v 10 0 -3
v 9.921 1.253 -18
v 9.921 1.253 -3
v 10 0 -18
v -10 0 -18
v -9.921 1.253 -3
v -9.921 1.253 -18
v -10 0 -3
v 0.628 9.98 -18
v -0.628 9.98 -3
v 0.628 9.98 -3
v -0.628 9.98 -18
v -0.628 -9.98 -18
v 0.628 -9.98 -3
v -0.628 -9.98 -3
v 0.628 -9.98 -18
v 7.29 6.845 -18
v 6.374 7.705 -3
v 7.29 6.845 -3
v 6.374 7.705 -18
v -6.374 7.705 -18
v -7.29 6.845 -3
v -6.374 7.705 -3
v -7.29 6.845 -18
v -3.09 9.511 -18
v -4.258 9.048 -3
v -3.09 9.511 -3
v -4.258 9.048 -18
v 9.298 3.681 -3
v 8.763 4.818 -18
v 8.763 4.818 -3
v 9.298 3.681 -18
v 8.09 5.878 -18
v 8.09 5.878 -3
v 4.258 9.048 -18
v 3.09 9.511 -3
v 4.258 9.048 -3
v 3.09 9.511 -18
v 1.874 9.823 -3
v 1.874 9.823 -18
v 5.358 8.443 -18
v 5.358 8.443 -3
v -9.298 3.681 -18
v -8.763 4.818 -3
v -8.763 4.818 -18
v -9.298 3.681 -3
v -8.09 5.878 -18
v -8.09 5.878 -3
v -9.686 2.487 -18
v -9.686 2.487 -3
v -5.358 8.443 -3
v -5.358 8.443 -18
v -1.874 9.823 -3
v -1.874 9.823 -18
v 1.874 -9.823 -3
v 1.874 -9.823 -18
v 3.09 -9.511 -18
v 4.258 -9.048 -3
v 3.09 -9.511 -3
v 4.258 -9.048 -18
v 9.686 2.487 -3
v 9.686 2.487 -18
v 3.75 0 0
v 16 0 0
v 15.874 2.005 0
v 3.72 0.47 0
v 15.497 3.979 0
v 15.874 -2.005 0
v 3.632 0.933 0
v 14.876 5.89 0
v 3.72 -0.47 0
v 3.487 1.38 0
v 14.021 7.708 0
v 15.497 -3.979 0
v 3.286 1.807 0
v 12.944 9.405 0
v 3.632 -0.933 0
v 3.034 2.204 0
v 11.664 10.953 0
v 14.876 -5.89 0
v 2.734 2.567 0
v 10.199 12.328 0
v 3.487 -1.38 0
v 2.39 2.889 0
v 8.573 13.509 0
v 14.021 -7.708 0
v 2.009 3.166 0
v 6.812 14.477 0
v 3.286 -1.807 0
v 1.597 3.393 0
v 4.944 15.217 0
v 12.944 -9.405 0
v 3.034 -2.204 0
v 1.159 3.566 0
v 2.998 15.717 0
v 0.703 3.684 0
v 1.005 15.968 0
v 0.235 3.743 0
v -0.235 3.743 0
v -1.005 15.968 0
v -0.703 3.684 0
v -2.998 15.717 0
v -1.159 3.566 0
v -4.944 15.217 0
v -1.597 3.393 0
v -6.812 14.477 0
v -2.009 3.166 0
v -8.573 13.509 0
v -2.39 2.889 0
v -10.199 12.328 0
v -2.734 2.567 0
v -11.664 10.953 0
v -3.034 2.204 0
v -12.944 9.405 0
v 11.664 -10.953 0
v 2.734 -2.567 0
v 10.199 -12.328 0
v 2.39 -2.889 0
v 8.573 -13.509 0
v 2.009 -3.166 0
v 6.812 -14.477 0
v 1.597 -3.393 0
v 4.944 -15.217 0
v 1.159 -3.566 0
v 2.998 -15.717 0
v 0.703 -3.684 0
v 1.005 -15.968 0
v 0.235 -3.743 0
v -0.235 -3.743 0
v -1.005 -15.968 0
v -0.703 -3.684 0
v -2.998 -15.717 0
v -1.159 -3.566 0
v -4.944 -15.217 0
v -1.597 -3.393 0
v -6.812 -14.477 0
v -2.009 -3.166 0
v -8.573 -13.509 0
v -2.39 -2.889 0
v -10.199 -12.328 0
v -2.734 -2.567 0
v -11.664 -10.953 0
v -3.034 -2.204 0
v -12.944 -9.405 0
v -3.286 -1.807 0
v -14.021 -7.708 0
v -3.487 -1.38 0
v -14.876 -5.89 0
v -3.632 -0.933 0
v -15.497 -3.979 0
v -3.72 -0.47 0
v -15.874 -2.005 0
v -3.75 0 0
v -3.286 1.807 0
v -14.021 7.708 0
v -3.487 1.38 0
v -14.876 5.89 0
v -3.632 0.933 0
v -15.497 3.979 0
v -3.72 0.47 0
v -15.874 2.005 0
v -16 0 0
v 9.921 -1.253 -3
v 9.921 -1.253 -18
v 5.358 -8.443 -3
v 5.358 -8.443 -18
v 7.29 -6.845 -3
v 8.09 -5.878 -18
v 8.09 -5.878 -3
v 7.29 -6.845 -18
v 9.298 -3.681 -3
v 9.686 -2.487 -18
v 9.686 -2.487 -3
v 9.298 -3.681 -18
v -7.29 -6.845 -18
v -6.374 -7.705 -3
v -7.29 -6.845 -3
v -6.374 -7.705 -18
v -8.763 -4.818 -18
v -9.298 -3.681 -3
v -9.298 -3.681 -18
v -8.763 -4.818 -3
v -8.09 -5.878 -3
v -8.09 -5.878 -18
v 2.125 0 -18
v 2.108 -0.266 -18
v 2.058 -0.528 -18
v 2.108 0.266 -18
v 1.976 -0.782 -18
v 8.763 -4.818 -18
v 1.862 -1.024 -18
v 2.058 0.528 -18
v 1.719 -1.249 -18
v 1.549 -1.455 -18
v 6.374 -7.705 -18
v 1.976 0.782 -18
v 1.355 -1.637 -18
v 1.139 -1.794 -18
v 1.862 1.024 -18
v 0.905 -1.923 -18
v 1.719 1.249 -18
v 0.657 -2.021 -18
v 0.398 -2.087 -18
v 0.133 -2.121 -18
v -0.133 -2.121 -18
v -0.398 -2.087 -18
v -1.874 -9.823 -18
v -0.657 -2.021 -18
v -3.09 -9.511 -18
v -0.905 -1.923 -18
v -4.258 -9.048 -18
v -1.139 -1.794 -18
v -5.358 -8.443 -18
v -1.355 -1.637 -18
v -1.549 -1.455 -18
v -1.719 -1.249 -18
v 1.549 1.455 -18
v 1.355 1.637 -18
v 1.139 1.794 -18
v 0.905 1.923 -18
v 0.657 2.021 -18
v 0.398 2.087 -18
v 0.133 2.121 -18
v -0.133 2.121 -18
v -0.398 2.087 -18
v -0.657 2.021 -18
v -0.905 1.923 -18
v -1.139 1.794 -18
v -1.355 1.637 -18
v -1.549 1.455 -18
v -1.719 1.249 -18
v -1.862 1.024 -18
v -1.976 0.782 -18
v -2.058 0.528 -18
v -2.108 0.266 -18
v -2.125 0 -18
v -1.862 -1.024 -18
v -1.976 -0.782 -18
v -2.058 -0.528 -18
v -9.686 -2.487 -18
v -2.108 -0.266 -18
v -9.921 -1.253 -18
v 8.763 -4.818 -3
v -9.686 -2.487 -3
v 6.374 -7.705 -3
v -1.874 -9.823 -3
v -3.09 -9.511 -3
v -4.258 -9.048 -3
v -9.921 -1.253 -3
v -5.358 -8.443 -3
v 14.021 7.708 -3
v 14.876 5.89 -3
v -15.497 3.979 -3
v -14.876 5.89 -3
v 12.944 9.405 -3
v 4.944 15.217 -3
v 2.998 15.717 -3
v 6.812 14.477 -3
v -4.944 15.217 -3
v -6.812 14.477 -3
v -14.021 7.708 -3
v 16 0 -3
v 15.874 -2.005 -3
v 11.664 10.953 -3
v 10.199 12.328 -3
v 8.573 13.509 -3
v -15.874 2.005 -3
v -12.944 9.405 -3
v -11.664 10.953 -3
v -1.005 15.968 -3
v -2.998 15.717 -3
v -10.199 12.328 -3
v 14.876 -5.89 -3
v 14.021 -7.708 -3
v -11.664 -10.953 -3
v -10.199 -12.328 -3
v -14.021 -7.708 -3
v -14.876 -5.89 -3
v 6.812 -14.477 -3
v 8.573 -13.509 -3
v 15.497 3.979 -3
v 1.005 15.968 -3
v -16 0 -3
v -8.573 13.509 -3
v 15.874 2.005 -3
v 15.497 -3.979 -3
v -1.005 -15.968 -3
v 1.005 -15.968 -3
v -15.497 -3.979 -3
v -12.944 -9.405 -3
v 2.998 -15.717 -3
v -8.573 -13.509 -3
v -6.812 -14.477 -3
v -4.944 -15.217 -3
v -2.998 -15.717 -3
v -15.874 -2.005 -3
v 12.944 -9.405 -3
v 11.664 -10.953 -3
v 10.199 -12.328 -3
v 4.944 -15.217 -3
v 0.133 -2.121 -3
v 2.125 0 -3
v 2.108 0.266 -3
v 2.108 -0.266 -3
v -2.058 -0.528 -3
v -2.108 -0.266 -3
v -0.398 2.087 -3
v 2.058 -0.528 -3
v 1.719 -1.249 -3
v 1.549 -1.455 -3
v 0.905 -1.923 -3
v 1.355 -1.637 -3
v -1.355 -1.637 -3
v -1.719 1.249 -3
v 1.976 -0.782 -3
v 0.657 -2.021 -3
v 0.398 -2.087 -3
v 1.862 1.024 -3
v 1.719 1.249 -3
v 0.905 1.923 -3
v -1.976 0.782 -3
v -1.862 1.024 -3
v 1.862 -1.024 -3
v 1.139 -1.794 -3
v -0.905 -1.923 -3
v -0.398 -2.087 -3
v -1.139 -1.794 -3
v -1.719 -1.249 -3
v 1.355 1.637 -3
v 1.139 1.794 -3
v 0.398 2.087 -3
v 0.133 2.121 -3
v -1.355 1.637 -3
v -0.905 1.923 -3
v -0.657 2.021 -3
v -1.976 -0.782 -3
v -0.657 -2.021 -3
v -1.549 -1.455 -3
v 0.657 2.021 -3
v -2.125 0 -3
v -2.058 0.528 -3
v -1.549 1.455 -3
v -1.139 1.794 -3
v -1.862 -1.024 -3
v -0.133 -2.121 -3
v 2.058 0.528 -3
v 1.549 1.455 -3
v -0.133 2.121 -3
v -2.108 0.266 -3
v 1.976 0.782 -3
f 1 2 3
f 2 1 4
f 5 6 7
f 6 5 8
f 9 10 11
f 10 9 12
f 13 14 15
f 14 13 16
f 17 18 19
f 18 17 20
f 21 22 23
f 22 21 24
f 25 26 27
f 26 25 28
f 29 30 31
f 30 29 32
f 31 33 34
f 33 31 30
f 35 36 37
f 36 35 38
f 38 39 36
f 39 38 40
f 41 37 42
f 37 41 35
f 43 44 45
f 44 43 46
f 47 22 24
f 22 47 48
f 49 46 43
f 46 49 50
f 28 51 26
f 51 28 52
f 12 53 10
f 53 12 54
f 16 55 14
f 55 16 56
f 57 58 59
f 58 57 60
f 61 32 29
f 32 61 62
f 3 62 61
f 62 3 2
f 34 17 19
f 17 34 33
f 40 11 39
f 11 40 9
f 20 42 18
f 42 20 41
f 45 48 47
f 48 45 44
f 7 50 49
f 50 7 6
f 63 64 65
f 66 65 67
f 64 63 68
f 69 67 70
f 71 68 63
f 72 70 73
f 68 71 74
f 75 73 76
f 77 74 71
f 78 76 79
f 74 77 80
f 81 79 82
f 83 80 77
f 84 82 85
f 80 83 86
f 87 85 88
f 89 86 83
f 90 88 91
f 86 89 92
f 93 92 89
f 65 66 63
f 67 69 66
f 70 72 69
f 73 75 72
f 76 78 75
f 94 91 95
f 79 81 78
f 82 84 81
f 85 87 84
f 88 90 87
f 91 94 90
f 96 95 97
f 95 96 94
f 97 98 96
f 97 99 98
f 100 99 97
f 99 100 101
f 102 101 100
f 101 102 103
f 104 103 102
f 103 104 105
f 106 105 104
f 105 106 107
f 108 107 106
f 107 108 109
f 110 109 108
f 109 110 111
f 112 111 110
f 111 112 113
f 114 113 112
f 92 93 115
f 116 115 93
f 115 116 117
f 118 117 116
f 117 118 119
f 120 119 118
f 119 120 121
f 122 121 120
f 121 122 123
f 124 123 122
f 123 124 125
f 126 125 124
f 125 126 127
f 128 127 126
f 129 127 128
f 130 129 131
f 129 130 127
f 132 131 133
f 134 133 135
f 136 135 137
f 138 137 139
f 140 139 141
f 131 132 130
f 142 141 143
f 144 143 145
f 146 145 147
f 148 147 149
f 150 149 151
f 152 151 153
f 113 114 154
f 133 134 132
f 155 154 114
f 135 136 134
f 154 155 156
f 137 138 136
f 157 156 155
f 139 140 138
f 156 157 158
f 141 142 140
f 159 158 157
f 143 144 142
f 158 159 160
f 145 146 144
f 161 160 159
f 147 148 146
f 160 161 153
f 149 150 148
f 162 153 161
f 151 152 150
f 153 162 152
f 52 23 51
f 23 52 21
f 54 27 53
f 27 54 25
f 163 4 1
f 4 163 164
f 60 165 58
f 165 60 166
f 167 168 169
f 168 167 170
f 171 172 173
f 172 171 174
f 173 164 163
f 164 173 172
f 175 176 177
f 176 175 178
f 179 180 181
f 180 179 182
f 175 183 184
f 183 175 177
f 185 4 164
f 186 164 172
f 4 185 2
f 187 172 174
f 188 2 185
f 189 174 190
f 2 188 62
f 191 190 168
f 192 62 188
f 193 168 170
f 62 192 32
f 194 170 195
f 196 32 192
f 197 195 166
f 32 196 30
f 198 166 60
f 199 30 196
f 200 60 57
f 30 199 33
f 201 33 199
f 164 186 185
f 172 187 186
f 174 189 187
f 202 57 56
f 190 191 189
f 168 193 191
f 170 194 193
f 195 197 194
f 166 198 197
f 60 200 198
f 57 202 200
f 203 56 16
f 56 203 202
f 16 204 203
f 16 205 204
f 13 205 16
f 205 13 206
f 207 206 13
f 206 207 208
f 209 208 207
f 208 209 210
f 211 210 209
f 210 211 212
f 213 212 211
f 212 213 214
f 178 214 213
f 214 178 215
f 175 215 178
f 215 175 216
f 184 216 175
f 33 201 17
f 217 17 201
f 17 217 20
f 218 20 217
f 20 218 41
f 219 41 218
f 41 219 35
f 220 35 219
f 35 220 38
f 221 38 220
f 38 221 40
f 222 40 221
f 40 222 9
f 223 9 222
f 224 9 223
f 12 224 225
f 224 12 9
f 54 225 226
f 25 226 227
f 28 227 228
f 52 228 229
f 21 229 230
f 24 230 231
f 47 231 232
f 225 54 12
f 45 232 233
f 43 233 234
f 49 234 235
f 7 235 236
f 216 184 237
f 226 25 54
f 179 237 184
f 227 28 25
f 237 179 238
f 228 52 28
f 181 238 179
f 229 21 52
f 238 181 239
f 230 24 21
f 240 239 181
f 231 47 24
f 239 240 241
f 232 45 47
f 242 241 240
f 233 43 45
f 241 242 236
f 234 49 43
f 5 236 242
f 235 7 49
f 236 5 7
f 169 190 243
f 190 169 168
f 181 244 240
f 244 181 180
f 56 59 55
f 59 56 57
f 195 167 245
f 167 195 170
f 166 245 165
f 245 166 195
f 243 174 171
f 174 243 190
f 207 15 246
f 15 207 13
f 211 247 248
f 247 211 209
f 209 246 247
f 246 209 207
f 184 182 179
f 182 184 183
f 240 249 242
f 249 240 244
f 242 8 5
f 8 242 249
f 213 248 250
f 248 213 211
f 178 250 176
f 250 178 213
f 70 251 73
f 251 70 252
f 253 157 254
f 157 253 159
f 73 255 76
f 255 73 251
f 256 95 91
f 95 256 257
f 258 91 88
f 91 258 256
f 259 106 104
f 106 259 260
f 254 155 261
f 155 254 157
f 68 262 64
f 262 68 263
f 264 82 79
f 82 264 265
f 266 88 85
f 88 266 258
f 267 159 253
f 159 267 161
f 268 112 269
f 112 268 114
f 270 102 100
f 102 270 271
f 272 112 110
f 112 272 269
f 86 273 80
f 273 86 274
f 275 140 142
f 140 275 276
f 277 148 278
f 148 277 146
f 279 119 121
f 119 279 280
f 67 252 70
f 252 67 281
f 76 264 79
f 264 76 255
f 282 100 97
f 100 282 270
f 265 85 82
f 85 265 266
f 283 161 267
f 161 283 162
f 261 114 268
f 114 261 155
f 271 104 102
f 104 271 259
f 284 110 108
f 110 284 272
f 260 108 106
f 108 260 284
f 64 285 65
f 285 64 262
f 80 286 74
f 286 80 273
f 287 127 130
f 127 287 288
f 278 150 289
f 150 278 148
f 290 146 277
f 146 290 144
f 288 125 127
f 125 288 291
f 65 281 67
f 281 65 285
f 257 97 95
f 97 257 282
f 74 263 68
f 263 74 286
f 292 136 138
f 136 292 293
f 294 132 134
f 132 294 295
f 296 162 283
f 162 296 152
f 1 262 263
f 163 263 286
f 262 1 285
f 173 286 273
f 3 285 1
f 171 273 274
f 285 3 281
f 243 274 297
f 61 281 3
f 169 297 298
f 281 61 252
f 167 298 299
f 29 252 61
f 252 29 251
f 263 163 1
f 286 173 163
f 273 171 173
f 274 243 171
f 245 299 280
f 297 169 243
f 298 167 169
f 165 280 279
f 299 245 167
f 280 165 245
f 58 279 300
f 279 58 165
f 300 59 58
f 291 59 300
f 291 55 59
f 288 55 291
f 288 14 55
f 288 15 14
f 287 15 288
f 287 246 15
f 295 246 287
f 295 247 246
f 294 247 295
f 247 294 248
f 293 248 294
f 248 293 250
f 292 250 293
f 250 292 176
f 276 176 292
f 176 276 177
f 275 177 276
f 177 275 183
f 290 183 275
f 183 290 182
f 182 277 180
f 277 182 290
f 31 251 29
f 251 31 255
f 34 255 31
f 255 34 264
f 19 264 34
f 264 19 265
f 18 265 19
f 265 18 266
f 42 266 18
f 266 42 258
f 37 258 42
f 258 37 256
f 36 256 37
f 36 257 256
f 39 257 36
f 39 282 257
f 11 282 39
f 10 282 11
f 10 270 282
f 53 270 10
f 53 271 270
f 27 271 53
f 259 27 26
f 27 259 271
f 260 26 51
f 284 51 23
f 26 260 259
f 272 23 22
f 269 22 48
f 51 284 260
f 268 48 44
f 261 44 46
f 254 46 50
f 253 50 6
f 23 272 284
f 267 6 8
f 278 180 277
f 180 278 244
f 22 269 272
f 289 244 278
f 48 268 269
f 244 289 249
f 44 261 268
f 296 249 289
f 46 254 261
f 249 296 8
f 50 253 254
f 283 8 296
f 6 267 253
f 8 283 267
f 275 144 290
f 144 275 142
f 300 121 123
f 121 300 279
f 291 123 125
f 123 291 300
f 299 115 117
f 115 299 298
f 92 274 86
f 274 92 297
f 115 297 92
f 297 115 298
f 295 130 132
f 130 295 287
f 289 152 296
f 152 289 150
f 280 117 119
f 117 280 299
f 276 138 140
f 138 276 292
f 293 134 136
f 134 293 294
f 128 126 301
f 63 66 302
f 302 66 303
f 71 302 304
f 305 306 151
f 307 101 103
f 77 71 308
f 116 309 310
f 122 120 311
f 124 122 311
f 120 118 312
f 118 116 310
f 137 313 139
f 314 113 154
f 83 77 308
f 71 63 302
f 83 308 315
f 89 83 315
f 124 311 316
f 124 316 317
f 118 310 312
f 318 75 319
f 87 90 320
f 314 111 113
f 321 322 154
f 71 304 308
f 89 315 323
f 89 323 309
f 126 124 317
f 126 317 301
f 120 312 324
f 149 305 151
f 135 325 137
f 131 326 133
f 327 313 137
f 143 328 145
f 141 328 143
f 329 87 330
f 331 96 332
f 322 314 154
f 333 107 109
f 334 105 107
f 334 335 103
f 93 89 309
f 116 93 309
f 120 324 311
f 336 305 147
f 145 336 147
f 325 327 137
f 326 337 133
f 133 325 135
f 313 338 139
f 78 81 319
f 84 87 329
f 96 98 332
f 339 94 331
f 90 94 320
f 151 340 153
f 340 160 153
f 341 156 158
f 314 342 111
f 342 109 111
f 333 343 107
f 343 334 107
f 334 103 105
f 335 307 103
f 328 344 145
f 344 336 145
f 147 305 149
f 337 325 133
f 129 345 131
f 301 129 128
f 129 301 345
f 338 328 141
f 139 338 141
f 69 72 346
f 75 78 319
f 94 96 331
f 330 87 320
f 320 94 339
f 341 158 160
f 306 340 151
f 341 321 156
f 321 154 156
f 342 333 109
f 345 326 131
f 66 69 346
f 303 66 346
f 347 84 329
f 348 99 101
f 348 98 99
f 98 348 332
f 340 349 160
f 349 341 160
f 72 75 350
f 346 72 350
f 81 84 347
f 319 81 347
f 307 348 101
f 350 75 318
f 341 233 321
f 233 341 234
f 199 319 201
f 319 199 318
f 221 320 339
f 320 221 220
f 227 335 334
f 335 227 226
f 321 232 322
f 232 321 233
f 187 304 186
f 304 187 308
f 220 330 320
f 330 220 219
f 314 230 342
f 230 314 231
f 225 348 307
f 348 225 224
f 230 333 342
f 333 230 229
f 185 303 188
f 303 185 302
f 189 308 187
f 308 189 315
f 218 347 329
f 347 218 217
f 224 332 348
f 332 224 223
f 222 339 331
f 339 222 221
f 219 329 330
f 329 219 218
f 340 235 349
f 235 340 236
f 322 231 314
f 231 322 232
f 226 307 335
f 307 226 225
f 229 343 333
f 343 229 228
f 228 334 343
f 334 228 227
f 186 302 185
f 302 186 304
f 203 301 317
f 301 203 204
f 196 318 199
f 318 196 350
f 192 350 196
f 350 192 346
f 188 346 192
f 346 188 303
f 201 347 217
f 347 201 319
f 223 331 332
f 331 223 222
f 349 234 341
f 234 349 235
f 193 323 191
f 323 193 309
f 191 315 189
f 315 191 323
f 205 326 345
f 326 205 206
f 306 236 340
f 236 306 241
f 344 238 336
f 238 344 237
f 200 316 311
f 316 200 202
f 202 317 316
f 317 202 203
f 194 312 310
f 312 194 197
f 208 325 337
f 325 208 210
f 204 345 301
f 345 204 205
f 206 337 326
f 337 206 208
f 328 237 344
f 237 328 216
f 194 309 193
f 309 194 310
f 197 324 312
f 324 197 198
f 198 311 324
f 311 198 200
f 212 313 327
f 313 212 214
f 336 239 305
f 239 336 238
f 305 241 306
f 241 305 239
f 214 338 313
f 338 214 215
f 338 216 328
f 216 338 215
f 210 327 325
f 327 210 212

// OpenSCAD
$fn = 50;


difference() {
	union() {
		translate(v = [0, 0, -18.0000000000]) {
			cylinder(h = 18, r = 10.0000000000);
		}
		translate(v = [0, 0, -3.0000000000]) {
			cylinder(h = 3, r = 16.0000000000);
		}
	}
	union() {
		translate(v = [0, 0, 0]) {
			rotate(a = [0, 0, 0]) {
				difference() {
					union() {
						#translate(v = [0, 0, -18.0000000000]) {
							cylinder(h = 18, r = 2.0000000000);
						}
						#translate(v = [0, 0, -3]) {
							cylinder(h = 3, r = 10.0000000000, r1 = 2.1250000000, r2 = 3.7500000000);
						}
						#translate(v = [0, 0, -18.0000000000]) {
							cylinder(h = 18, r = 2.1250000000);
						}
						#translate(v = [0, 0, -18.0000000000]) {
							cylinder(h = 18, r = 2.0000000000);
						}
					}
					union();
				}
			}
		}
	}
}
